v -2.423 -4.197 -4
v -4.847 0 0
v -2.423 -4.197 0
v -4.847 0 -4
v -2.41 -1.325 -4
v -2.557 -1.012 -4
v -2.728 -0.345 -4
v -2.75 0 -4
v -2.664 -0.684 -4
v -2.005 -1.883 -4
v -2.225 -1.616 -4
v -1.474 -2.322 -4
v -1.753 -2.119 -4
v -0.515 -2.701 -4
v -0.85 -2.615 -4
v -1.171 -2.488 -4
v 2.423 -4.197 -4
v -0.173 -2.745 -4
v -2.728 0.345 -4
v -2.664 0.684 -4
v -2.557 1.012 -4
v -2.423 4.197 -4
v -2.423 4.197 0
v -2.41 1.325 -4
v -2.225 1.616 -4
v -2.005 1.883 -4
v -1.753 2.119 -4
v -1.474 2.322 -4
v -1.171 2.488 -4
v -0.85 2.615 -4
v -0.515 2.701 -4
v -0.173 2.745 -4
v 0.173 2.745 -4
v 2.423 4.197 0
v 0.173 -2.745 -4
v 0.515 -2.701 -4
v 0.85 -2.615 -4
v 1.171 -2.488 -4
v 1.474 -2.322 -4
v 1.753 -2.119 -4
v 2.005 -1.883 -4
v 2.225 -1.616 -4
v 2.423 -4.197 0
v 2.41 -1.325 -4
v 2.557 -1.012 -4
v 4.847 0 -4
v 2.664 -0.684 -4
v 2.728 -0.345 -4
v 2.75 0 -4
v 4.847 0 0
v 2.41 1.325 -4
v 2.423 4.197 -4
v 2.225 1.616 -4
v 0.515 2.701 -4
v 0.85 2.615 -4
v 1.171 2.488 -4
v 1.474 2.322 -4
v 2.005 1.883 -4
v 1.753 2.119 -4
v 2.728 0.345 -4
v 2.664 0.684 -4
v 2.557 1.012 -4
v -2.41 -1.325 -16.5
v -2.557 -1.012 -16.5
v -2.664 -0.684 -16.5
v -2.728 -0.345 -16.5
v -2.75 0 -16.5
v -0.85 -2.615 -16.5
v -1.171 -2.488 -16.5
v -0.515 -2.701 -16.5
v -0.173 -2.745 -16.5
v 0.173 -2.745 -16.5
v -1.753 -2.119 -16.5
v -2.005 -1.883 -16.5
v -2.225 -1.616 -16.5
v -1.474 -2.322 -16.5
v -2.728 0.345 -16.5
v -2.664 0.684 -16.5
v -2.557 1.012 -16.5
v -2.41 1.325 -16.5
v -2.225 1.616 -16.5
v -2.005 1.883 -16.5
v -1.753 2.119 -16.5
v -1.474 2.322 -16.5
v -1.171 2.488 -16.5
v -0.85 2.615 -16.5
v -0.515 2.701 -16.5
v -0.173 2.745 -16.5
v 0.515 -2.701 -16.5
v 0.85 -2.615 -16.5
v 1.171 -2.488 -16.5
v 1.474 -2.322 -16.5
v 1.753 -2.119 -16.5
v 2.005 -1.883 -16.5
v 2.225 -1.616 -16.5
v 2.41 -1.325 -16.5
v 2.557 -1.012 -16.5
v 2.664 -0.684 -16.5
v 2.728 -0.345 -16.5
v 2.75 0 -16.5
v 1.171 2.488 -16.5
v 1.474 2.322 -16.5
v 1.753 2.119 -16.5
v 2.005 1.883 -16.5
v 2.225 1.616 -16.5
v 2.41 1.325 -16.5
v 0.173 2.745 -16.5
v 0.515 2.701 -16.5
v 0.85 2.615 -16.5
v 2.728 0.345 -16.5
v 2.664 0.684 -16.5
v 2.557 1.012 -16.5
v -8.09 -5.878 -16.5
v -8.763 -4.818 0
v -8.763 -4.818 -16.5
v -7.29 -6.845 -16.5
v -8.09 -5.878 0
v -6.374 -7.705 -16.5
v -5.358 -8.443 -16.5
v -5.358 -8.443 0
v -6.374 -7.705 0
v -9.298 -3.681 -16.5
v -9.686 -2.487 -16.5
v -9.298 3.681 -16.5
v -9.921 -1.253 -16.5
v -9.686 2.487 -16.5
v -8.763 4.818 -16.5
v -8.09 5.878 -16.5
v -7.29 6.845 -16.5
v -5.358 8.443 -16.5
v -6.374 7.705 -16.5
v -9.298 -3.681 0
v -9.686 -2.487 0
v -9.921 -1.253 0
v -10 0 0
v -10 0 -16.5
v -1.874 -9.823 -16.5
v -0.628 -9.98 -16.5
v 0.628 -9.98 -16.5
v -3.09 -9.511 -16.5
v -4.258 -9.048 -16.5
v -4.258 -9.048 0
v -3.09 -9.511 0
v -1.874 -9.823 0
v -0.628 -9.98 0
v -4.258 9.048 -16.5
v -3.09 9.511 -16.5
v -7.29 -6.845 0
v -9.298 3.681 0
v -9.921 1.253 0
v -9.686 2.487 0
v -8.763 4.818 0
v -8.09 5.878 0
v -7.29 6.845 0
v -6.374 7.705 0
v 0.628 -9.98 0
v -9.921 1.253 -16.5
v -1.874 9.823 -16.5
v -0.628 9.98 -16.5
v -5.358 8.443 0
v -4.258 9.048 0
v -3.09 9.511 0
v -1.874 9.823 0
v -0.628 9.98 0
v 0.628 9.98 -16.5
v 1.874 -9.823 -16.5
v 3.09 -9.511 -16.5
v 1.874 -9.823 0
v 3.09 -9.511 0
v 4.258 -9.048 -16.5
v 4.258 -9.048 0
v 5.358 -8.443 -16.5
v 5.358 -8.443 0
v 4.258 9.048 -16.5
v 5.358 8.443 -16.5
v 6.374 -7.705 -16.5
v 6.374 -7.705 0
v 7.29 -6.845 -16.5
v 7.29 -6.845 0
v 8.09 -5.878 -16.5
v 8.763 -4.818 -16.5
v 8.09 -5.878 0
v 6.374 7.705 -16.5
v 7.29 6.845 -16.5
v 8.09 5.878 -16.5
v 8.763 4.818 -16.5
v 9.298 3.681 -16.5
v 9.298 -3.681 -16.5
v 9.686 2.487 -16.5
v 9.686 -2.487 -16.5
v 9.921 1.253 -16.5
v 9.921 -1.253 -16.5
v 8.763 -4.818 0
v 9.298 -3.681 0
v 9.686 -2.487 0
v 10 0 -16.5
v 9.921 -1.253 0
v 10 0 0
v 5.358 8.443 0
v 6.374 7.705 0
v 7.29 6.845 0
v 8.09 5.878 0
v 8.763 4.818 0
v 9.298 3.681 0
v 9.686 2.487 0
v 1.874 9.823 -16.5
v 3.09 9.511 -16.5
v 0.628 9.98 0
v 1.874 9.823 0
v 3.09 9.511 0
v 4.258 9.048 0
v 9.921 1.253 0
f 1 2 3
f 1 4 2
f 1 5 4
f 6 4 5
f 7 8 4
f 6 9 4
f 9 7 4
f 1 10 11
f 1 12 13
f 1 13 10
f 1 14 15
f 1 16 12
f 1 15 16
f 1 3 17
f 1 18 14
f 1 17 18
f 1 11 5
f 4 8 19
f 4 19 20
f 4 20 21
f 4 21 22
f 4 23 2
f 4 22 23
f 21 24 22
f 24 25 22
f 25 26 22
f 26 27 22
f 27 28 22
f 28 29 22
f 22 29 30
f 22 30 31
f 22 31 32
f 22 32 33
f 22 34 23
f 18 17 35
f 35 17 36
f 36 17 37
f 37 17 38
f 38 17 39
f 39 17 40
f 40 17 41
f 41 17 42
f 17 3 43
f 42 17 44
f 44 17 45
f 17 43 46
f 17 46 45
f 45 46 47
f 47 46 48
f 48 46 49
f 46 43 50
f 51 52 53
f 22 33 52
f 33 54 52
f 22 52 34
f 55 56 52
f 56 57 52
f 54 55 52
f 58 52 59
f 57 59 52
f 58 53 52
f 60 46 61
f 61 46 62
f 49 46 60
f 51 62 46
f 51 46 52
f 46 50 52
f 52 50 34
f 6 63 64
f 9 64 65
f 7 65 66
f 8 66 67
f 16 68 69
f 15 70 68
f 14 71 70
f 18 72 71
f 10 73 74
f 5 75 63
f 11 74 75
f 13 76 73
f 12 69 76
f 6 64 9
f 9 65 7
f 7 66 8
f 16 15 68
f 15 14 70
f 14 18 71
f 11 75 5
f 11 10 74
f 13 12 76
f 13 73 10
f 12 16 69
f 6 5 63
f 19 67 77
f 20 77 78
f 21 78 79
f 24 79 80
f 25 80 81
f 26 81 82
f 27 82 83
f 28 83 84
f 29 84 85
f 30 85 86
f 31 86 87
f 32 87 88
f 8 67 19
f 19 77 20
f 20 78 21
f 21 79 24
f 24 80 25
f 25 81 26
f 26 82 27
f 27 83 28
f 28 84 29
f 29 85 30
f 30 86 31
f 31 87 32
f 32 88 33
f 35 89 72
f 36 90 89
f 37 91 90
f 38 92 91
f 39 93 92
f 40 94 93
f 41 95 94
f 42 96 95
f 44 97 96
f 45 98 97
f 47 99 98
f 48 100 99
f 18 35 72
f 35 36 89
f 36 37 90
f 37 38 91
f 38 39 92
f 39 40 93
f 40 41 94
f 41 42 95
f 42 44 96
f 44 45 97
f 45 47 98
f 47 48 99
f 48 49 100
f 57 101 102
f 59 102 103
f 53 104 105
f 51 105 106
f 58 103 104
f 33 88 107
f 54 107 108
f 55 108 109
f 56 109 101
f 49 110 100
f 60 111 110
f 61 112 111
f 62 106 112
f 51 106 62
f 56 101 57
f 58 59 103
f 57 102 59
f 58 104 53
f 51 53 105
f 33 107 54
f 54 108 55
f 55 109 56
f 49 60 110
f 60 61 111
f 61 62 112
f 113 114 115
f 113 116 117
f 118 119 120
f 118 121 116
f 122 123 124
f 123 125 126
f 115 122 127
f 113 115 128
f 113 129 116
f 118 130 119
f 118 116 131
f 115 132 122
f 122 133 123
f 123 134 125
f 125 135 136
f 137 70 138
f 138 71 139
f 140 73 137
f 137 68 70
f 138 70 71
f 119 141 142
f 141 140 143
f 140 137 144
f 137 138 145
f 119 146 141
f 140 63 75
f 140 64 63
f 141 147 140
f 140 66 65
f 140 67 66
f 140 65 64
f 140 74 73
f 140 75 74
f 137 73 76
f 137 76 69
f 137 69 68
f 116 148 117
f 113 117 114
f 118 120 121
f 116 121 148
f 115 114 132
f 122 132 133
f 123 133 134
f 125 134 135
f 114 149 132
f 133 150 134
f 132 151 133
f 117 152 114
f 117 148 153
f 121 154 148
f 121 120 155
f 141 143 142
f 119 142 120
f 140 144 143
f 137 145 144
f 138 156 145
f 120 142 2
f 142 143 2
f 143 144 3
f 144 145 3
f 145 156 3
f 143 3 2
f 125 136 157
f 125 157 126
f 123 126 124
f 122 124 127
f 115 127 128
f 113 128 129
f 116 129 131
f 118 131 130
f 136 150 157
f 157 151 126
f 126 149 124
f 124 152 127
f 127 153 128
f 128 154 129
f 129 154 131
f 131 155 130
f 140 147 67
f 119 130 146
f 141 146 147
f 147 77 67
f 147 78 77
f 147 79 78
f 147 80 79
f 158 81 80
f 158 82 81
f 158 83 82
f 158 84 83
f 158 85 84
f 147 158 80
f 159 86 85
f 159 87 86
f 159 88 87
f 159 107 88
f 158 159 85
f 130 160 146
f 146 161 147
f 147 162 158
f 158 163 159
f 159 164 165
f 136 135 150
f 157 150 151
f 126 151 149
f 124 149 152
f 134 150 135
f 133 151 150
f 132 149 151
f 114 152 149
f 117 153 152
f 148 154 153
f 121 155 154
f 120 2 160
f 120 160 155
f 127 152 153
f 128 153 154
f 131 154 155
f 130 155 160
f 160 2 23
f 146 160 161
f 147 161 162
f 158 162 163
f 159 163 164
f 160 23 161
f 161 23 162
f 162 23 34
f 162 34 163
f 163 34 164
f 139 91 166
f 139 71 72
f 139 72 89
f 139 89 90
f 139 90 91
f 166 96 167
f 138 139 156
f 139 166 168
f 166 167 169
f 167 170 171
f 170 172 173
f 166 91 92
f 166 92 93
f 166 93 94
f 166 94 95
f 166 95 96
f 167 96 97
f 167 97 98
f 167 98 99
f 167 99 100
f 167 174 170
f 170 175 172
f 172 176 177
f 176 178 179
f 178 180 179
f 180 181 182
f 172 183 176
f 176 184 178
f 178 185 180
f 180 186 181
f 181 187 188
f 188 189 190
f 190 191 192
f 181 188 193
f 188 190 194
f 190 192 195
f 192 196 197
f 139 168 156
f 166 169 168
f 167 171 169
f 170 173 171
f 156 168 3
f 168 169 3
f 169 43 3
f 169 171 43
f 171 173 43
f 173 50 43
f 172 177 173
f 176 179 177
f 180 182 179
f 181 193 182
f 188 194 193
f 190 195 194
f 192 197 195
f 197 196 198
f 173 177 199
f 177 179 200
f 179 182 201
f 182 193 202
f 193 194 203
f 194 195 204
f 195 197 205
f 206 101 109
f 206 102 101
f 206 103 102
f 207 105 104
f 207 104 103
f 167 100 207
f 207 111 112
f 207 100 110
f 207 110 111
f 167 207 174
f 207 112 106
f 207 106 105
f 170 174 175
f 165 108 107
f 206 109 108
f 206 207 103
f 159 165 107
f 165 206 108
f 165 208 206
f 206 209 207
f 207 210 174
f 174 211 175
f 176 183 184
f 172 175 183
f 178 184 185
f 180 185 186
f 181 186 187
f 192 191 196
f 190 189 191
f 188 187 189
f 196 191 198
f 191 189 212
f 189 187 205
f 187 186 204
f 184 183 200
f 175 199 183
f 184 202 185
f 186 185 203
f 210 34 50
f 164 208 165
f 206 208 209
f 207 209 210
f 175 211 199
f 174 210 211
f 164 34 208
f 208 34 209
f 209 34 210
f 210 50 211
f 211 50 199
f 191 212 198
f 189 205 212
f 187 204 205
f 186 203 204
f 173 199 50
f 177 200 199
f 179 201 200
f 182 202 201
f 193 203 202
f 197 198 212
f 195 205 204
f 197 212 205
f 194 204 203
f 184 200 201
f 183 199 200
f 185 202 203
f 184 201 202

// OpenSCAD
$fn = 50;

difference() {
	union() {
		translate(v = [0, 0, -16.5]) {
			cylinder(h = 16.5, r = 10.0);
		}
	}
	union() {
		translate(v = [0, 0, 0]) {
			rotate(a = [0, 0, 0]) {
				difference() {
					union() {
						translate(v = [0, 0, -4]) {
							linear_extrude(height = 4) {
								polygon(points = [[4.8468, 0.0], [2.4234000000000004, 4.197451927062417], [-2.423399999999999, 4.197451927062417], [-4.8468, 5.935618106107392e-16], [-2.423400000000002, -4.197451927062416], [2.423399999999997, -4.197451927062419]]);
							}
						}
					}
					union();
				}
			}
		}
		#translate(v = [0, 0, -100.0]) {
			cylinder(h = 200, r = 2.75);
		}
	}
}
